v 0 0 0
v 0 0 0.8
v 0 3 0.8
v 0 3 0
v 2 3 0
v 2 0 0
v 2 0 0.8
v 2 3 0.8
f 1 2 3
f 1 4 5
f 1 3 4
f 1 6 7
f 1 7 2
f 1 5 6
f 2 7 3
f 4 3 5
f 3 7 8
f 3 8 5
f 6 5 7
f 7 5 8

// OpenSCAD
/* Warning, this is a very basic generator with a lot of approximation 
input data : [TDFN, Q5X, 2x3x0.8mm, 8, , E, C04-00129E]
generated by com.zoubworld.electronics.cad.model3d.Basic
Date : Sun Feb 15 10:50:48 CET 2026
*/

//body
color("black")
translate([0,0,0])
cube([2.0,3.0,0.8], center=false);
